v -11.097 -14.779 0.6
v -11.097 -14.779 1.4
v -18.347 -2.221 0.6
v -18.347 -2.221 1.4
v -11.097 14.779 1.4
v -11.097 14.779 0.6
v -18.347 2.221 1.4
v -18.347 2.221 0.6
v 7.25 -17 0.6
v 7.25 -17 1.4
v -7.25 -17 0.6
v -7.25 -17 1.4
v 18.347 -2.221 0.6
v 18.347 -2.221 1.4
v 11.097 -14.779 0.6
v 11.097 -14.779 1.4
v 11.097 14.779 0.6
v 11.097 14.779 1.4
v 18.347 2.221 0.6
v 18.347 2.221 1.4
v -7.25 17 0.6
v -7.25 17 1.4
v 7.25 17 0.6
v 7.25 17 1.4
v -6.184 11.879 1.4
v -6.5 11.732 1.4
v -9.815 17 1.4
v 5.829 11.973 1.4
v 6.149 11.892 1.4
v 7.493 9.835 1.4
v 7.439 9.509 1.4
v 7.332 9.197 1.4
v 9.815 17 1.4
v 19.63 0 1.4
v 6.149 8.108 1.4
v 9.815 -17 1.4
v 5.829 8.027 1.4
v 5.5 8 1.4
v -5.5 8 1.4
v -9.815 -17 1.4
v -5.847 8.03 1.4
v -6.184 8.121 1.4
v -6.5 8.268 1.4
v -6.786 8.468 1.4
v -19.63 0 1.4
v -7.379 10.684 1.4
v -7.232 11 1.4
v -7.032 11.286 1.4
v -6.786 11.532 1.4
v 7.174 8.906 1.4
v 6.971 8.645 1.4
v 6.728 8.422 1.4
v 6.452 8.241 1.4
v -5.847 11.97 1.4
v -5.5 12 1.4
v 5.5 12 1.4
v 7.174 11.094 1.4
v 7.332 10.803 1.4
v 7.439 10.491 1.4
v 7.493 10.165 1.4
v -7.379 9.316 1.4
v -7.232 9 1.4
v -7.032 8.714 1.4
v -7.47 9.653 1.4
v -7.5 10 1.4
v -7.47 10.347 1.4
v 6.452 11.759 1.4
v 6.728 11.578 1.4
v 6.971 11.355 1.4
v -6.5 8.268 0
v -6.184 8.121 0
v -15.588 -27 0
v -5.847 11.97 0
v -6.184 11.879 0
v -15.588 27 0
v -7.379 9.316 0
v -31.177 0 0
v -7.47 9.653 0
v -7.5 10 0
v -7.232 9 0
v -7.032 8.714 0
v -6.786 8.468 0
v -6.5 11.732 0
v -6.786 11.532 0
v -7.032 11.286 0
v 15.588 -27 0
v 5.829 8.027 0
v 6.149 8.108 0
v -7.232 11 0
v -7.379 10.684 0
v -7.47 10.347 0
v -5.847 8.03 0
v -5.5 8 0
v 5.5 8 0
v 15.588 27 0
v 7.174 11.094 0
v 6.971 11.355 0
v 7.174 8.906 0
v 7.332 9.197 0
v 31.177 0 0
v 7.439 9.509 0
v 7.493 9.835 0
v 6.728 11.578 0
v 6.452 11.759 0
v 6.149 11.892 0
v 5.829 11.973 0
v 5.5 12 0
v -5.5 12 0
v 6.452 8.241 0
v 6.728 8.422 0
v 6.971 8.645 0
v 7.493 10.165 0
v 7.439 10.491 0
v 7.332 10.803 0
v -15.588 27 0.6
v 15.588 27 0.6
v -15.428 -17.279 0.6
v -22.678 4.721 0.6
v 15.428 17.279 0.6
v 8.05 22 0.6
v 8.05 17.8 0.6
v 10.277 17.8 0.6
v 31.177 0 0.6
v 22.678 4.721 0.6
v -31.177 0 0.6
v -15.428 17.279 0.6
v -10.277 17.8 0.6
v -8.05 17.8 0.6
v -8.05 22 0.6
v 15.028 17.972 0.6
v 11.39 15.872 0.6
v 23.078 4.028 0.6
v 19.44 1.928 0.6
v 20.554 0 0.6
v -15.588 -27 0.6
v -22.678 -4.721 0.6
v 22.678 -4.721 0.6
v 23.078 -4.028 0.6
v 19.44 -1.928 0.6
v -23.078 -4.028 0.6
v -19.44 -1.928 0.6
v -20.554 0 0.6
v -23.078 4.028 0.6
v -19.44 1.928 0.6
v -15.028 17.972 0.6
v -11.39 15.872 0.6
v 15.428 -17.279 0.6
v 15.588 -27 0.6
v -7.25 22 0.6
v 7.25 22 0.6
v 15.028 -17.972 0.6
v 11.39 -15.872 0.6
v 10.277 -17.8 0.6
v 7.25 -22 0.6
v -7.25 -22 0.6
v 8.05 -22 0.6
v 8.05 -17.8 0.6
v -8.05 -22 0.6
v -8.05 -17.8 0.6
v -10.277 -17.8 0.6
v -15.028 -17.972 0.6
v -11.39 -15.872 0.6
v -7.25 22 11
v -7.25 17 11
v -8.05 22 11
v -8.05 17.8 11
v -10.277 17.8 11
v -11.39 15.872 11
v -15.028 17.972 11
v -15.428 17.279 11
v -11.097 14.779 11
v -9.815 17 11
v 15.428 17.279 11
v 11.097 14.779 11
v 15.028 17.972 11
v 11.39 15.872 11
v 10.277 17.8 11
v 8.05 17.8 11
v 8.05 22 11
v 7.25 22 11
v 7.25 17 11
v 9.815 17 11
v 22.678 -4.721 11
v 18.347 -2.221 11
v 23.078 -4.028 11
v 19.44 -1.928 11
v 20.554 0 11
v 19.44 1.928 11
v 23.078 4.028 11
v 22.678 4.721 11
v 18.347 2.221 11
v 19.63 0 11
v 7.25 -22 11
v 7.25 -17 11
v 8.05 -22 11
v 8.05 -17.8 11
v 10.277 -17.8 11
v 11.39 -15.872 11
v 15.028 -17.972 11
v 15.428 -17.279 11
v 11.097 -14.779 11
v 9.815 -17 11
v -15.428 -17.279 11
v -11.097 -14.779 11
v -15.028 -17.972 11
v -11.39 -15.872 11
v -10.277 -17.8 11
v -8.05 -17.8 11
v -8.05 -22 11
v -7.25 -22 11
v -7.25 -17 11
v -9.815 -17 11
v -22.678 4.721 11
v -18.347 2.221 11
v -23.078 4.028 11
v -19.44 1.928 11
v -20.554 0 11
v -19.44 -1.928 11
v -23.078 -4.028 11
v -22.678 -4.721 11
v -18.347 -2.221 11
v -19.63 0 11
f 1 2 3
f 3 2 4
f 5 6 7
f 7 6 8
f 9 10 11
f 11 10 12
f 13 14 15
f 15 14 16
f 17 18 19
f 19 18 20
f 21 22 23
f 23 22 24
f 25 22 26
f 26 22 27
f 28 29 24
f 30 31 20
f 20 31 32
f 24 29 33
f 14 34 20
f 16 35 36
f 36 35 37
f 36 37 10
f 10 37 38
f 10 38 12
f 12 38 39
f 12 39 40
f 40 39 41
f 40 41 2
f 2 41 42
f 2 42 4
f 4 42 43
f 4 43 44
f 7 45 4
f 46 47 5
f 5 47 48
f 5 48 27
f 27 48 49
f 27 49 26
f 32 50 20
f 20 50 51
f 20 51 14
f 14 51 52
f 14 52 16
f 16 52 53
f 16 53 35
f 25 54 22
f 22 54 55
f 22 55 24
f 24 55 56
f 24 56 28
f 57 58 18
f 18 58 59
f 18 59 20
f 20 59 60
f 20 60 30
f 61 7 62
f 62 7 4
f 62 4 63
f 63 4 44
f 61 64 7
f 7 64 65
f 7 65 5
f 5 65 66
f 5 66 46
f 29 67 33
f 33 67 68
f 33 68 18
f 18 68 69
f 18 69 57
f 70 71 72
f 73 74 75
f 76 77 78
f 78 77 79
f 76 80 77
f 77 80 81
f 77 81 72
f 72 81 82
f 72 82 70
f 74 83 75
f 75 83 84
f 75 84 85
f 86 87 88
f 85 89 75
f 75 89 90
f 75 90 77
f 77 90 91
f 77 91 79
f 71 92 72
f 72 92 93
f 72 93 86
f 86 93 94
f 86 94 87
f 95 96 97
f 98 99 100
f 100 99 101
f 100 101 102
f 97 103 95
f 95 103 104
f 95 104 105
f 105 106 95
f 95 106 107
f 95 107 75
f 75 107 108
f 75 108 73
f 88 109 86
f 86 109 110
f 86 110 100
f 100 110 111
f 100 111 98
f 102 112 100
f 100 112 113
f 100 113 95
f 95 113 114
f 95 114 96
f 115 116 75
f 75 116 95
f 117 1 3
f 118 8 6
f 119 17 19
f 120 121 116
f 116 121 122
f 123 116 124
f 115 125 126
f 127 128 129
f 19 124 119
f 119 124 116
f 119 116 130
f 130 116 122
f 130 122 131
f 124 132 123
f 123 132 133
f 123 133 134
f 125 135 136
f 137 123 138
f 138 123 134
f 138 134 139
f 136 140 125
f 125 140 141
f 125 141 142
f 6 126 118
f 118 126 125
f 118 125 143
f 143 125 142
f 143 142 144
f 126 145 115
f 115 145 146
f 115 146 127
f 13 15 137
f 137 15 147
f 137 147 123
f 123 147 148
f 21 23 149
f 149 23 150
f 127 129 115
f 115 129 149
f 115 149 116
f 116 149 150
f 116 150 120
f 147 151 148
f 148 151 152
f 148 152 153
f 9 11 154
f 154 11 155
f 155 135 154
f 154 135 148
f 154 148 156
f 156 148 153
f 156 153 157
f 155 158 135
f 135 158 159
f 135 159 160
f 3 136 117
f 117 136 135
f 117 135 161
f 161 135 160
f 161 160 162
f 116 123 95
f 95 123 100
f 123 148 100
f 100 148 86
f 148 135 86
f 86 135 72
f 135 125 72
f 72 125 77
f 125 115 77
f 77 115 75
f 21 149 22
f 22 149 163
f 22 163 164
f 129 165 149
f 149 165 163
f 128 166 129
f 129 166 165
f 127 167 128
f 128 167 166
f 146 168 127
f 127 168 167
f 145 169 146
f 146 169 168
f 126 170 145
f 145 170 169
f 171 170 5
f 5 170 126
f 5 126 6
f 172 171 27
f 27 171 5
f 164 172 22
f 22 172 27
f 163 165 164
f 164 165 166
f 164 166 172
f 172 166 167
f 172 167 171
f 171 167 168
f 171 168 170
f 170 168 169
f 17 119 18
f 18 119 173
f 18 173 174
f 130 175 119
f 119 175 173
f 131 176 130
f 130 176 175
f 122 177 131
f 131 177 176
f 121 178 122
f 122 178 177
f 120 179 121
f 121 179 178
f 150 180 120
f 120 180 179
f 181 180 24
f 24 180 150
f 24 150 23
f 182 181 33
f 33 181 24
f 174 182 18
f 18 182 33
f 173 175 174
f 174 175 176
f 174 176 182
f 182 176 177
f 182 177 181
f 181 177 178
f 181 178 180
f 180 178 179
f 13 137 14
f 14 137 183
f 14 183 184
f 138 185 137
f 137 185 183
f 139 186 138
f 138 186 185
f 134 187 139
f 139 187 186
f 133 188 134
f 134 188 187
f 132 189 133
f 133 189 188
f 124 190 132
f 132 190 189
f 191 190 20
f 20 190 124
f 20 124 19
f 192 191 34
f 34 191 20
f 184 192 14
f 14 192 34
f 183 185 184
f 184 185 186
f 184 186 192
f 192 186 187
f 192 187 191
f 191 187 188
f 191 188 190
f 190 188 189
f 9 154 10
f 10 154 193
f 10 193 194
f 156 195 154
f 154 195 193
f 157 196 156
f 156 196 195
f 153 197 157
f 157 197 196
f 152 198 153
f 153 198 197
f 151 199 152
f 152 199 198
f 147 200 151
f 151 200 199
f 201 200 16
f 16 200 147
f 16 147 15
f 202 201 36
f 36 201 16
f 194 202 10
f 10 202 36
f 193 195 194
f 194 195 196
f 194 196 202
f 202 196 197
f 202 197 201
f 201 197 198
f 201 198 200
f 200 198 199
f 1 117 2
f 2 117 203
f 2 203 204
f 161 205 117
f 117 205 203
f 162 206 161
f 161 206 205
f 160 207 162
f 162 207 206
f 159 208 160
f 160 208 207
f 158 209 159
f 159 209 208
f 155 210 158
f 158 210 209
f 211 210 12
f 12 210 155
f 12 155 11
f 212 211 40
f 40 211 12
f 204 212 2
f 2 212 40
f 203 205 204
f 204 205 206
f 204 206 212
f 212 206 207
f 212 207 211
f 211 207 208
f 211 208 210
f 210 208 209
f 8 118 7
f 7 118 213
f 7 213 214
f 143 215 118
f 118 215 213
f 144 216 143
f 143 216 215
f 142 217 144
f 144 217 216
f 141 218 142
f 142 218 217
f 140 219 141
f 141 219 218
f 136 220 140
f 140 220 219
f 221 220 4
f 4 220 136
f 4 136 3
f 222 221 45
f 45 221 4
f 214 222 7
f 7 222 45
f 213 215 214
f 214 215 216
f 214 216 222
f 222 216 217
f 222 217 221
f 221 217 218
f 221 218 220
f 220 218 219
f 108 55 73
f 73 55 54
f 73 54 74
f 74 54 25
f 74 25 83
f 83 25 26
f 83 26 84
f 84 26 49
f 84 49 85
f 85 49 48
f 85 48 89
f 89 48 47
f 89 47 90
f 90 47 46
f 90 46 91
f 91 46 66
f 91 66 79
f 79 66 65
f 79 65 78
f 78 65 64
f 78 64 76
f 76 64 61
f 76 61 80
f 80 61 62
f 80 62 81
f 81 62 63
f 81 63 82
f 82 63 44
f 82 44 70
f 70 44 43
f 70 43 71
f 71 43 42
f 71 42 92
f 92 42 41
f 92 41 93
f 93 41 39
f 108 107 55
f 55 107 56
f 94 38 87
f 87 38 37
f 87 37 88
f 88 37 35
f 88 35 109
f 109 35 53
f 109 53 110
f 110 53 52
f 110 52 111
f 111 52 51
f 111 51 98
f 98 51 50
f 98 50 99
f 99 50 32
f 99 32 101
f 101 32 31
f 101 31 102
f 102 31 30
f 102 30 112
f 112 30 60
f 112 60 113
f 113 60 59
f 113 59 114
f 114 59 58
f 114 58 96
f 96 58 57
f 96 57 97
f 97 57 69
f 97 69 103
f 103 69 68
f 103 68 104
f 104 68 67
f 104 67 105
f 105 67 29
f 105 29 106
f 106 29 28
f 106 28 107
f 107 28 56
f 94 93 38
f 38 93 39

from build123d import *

# Parameters (mm, degrees)
BOSS_EXTRUDE1_DEPTH     = 1.4
SKETCH2_W               = 14.5
SKETCH2_H               = 10
BOSS_EXTRUDE2_DEPTH     = 0.6
BOSS_EXTRUDE3_DEPTH     = 11
BOSS_EXTRUDE4_DEPTH     = 0.6
CUT_EXTRUDE1_DEPTH      = 43.345719973
CUT_EXTRUDE1_DEPTH_BACK = 43.345719973


with BuildPart() as part:
    # Sketch1 → Boss-Extrude1 (new body)
    with BuildSketch(Plane.XY):
        Polygon((19.629909152, 0), (9.814954576, 17), (-9.814954576, 17), (-19.629909152, 0), (-9.814954576, -17), (9.814954576, -17), align=None)
    extrude(amount=BOSS_EXTRUDE1_DEPTH)

    # Sketch2 → Boss-Extrude2 (add)
    with BuildSketch(Plane.XY):
        with Locations((0, 22)):
            Rectangle(SKETCH2_W, SKETCH2_H)
        Polygon((19.757685902, 19.778684177), (27.007685902, 7.221315823), (18.347431864, 2.221315823), (11.097431864, 14.778684177), align=None)
        Polygon((27.007685902, -7.221315823), (19.757685902, -19.778684177), (11.097431864, -14.778684177), (18.347431864, -2.221315823), align=None)
        with Locations((0, -22)):
            Rectangle(SKETCH2_W, SKETCH2_H)
        Polygon((-19.757685902, -19.778684177), (-27.007685902, -7.221315823), (-18.347431864, -2.221315823), (-11.097431864, -14.778684177), align=None)
        Polygon((-27.007685902, 7.221315823), (-19.757685902, 19.778684177), (-11.097431864, 14.778684177), (-18.347431864, 2.221315823), align=None)
    extrude(amount=BOSS_EXTRUDE2_DEPTH)

    # Sketch3 → Boss-Extrude3 (add)
    with BuildSketch(Plane.XY):
        Polygon((-7.25, 22), (-8.05, 22), (-8.05, 17.8), (-10.276834792, 17.8), (-11.390252187, 15.8715045), (-15.027558883, 17.9715045), (-15.427558883, 17.278684177), (-11.097431864, 14.778684177), (-9.814954576, 17), (-7.25, 17), align=None)
        Polygon((15.427558883, 17.278684177), (15.027558883, 17.9715045), (11.390252187, 15.8715045), (10.276834792, 17.8), (8.05, 17.8), (8.05, 22), (7.25, 22), (7.25, 17), (9.814954576, 17), (11.097431864, 14.778684177), align=None)
        Polygon((22.677558883, -4.721315823), (23.077558883, -4.0284955), (19.440252187, -1.9284955), (20.553669583, 0), (19.440252187, 1.9284955), (23.077558883, 4.0284955), (22.677558883, 4.721315823), (18.347431864, 2.221315823), (19.629909152, 0), (18.347431864, -2.221315823), align=None)
        Polygon((7.25, -22), (8.05, -22), (8.05, -17.8), (10.276834792, -17.8), (11.390252187, -15.8715045), (15.027558883, -17.9715045), (15.427558883, -17.278684177), (11.097431864, -14.778684177), (9.814954576, -17), (7.25, -17), align=None)
        Polygon((-15.427558883, -17.278684177), (-15.027558883, -17.9715045), (-11.390252187, -15.8715045), (-10.276834792, -17.8), (-8.05, -17.8), (-8.05, -22), (-7.25, -22), (-7.25, -17), (-9.814954576, -17), (-11.097431864, -14.778684177), align=None)
        Polygon((-22.677558883, 4.721315823), (-23.077558883, 4.0284955), (-19.440252187, 1.9284955), (-20.553669583, 0), (-19.440252187, -1.9284955), (-23.077558883, -4.0284955), (-22.677558883, -4.721315823), (-18.347431864, -2.221315823), (-19.629909152, 0), (-18.347431864, 2.221315823), align=None)
    extrude(amount=BOSS_EXTRUDE3_DEPTH)

    # Sketch4 → Boss-Extrude4 (add)
    with BuildSketch(Plane.XY):
        Polygon((31.176914536, 0), (15.588457268, 27), (-15.588457268, 27), (-31.176914536, 0), (-15.588457268, -27), (15.588457268, -27), align=None)
    extrude(amount=BOSS_EXTRUDE4_DEPTH)

    # Sketch5 → Cut-Extrude1 (cut, two sides: drawn at the far end of the back side and taken through both)
    with BuildSketch(Plane.XY.offset(1.4).offset(-CUT_EXTRUDE1_DEPTH_BACK)):
        with BuildLine():
            Line((-5.5, 12), (5.5, 12))
            ThreePointArc((5.5, 12), (7.5, 10), (5.5, 8))
            Line((5.5, 8), (-5.5, 8))
            ThreePointArc((-5.5, 8), (-7.5, 10), (-5.5, 12))
        make_face()
    extrude(amount=CUT_EXTRUDE1_DEPTH + CUT_EXTRUDE1_DEPTH_BACK, mode=Mode.SUBTRACT)


solid = part.part
